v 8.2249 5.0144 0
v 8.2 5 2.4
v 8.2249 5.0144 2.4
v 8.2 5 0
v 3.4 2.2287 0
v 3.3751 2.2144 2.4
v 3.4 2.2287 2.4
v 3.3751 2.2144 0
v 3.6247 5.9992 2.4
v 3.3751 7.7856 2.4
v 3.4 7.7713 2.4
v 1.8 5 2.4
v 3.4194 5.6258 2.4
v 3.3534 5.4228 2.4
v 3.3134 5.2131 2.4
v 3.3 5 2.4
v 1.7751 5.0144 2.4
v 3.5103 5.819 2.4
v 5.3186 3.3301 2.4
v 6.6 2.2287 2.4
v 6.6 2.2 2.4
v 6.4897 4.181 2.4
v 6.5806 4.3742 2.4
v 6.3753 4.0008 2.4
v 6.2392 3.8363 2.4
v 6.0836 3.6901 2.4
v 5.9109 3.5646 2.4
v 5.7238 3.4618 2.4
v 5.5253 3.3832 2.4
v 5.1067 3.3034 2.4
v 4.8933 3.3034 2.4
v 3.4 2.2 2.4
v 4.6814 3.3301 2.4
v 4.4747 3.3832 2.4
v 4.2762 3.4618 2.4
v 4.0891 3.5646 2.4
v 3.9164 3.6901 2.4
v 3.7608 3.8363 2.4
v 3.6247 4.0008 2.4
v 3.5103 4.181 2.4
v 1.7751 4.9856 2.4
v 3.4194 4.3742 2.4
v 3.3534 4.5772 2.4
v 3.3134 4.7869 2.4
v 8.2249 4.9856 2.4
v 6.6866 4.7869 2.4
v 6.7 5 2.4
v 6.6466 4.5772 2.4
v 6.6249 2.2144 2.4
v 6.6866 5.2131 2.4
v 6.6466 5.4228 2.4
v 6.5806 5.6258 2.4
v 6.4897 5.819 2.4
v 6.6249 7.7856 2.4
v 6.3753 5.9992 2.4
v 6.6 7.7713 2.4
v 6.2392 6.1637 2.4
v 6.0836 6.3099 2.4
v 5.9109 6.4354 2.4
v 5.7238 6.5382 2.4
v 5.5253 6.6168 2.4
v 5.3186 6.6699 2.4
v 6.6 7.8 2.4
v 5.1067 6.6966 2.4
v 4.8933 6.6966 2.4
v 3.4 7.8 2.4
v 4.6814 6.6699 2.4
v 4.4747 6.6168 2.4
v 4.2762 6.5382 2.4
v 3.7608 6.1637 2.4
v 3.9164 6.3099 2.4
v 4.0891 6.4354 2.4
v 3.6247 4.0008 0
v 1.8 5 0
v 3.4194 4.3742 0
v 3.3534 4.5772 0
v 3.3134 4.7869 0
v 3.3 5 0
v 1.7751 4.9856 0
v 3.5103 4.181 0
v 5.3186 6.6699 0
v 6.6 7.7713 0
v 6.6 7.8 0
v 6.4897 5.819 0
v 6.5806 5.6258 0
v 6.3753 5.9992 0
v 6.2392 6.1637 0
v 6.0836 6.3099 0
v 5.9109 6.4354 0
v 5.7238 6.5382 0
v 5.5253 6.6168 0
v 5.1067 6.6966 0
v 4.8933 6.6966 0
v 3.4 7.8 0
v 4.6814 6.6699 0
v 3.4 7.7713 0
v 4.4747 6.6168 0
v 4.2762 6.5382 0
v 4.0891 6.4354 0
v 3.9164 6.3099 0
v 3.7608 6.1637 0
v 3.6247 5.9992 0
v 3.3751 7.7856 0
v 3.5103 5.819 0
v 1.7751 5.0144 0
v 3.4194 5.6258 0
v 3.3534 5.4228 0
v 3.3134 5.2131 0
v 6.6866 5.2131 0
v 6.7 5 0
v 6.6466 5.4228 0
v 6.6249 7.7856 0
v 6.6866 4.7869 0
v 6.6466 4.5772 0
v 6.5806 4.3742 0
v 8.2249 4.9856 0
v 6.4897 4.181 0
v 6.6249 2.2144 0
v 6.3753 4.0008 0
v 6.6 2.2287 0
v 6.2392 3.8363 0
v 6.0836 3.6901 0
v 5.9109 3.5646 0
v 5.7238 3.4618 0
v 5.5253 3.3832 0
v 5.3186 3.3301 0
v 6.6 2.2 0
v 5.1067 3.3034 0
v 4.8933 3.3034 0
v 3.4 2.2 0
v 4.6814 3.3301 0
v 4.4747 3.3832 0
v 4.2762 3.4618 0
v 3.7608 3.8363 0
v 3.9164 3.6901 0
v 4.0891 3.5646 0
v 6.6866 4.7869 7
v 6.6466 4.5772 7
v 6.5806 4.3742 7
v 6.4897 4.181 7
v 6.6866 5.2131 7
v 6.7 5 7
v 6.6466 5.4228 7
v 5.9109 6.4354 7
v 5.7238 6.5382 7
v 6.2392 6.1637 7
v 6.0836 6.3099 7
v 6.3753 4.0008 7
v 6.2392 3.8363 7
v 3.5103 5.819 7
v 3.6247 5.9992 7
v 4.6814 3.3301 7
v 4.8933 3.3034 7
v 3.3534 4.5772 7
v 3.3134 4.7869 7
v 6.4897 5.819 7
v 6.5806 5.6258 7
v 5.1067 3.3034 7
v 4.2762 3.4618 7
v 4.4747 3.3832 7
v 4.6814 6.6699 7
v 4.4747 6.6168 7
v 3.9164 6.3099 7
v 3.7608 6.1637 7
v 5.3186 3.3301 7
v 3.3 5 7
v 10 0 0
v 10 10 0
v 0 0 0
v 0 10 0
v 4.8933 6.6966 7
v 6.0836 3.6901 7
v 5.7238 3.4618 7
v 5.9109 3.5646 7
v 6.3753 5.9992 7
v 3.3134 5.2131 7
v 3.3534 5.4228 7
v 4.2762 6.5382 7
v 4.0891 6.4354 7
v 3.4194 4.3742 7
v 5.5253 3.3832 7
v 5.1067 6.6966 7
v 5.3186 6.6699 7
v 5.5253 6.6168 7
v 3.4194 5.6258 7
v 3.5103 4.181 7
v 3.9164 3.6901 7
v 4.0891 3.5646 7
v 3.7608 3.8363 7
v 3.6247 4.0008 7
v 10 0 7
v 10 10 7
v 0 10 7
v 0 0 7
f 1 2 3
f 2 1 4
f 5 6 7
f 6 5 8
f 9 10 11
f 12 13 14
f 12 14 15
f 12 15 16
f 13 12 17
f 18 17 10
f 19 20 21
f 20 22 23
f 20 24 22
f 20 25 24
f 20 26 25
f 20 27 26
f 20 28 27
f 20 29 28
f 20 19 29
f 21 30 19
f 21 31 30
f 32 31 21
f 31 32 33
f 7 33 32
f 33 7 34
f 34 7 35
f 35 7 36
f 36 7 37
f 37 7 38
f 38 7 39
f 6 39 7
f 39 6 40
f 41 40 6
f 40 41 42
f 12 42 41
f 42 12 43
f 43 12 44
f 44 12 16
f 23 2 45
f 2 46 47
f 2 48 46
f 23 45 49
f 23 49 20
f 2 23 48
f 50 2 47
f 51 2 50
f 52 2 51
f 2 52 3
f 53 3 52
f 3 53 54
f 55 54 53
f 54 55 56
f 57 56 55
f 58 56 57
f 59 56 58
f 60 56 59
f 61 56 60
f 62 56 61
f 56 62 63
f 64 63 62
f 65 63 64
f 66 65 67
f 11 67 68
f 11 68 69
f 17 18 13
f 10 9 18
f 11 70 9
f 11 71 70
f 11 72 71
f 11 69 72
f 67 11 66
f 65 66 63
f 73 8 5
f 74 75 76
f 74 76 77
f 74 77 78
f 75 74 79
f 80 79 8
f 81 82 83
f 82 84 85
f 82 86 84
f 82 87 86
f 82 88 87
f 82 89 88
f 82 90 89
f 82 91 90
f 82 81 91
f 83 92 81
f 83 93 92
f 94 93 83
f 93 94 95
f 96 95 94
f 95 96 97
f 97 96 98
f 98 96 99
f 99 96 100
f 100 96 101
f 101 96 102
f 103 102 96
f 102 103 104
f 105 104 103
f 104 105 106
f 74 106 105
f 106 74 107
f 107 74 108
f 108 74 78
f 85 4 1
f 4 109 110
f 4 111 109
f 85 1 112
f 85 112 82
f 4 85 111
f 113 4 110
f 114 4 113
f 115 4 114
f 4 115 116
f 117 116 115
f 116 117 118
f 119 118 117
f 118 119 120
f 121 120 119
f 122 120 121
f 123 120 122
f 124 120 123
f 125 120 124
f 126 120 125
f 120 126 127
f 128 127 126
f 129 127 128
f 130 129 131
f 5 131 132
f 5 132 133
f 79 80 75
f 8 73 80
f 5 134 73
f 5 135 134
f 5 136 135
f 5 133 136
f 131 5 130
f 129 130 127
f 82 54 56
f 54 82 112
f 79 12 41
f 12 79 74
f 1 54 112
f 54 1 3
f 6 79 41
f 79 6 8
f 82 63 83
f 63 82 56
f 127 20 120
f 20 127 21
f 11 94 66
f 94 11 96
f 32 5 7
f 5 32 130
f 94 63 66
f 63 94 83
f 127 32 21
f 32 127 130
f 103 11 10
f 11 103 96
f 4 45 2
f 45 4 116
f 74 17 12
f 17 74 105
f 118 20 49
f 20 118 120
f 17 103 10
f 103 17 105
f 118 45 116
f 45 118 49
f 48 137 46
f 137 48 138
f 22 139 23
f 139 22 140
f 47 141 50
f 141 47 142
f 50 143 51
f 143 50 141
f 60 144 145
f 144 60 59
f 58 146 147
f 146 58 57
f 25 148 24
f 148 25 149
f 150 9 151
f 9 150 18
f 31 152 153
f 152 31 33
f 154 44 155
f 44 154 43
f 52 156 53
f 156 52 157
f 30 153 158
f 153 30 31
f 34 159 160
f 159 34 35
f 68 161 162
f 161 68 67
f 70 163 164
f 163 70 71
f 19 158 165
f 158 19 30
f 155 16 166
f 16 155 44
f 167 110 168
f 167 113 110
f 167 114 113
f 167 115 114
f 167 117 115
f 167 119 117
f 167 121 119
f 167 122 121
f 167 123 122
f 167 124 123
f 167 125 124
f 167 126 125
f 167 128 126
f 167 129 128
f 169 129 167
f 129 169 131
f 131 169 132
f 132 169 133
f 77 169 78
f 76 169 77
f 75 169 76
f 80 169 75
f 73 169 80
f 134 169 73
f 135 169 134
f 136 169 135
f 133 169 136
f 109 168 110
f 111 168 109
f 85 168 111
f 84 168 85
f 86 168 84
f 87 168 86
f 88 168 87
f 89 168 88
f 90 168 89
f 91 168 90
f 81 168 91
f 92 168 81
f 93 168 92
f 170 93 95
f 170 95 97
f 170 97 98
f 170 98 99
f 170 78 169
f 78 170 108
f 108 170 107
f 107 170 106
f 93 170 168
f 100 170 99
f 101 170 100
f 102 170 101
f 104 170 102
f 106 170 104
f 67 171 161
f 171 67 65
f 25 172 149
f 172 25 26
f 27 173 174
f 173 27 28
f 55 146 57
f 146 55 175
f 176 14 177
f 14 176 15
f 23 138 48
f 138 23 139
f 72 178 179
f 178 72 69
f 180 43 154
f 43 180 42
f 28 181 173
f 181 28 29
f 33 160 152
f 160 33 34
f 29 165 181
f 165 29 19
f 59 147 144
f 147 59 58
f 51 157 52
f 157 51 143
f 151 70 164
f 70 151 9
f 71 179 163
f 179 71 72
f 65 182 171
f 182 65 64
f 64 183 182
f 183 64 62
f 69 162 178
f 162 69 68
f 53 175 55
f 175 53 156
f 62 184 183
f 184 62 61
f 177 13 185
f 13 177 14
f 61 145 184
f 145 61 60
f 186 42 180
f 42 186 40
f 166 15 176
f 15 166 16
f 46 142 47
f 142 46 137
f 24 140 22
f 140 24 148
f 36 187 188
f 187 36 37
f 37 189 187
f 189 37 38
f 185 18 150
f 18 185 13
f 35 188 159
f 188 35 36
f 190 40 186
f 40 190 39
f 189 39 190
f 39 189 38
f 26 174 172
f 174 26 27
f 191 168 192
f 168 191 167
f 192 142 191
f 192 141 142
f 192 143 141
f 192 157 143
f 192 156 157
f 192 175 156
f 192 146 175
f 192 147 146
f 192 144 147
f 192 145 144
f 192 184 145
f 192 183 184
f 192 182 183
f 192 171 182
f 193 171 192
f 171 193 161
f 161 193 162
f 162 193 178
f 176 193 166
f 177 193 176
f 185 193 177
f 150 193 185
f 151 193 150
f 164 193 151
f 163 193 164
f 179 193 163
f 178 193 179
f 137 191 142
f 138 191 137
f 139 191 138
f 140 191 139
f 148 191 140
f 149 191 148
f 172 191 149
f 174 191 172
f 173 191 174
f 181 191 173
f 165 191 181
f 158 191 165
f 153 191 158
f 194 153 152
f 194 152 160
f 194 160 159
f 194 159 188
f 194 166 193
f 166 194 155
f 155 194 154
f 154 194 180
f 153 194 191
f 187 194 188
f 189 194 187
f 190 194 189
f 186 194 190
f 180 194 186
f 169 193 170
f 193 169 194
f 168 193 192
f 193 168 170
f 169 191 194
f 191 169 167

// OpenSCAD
$fn=50;

module hexagon(size, height) {
  // 1/4" hex nut: 7/16*25.4,5
  // M3 normal bolt:  5.4,2.4
  boxWidth = size/1.75;
  translate([0,0,height/2]) for (r = [-60, 0, 60]) rotate([0,0,r]) cube([boxWidth, size, height], true);
}

module m3Bolt() { hexagon(5.4+0.2,2.4); }
module BoltM4() { hexagon(6.84,2.4); }
module BoltM5() { hexagon(7.84,2.4); }
module BoltM6() { hexagon(9.78,2.4); }

module m3ClearanceHole(length) { cylinder(length,d=3.4); }

module main1() {
    H=7;
    difference() {
        cube([20,30,H]);
        translate([10,15,0]) {
            cylinder(H,d=1/4*25.4+.1);
            #translate([0,0,H-5]) hexagon(7/16*25.4,5);
        }
    }
}
module main() {
    H=7;
    difference() {
        cube([10,10,H]);
        translate([5,5,0]) {
            //cylinder(H,d=3.15);
            #m3ClearanceHole(10);
            #translate([0,0,0]) m3Bolt();
        }
    }
}

main();
